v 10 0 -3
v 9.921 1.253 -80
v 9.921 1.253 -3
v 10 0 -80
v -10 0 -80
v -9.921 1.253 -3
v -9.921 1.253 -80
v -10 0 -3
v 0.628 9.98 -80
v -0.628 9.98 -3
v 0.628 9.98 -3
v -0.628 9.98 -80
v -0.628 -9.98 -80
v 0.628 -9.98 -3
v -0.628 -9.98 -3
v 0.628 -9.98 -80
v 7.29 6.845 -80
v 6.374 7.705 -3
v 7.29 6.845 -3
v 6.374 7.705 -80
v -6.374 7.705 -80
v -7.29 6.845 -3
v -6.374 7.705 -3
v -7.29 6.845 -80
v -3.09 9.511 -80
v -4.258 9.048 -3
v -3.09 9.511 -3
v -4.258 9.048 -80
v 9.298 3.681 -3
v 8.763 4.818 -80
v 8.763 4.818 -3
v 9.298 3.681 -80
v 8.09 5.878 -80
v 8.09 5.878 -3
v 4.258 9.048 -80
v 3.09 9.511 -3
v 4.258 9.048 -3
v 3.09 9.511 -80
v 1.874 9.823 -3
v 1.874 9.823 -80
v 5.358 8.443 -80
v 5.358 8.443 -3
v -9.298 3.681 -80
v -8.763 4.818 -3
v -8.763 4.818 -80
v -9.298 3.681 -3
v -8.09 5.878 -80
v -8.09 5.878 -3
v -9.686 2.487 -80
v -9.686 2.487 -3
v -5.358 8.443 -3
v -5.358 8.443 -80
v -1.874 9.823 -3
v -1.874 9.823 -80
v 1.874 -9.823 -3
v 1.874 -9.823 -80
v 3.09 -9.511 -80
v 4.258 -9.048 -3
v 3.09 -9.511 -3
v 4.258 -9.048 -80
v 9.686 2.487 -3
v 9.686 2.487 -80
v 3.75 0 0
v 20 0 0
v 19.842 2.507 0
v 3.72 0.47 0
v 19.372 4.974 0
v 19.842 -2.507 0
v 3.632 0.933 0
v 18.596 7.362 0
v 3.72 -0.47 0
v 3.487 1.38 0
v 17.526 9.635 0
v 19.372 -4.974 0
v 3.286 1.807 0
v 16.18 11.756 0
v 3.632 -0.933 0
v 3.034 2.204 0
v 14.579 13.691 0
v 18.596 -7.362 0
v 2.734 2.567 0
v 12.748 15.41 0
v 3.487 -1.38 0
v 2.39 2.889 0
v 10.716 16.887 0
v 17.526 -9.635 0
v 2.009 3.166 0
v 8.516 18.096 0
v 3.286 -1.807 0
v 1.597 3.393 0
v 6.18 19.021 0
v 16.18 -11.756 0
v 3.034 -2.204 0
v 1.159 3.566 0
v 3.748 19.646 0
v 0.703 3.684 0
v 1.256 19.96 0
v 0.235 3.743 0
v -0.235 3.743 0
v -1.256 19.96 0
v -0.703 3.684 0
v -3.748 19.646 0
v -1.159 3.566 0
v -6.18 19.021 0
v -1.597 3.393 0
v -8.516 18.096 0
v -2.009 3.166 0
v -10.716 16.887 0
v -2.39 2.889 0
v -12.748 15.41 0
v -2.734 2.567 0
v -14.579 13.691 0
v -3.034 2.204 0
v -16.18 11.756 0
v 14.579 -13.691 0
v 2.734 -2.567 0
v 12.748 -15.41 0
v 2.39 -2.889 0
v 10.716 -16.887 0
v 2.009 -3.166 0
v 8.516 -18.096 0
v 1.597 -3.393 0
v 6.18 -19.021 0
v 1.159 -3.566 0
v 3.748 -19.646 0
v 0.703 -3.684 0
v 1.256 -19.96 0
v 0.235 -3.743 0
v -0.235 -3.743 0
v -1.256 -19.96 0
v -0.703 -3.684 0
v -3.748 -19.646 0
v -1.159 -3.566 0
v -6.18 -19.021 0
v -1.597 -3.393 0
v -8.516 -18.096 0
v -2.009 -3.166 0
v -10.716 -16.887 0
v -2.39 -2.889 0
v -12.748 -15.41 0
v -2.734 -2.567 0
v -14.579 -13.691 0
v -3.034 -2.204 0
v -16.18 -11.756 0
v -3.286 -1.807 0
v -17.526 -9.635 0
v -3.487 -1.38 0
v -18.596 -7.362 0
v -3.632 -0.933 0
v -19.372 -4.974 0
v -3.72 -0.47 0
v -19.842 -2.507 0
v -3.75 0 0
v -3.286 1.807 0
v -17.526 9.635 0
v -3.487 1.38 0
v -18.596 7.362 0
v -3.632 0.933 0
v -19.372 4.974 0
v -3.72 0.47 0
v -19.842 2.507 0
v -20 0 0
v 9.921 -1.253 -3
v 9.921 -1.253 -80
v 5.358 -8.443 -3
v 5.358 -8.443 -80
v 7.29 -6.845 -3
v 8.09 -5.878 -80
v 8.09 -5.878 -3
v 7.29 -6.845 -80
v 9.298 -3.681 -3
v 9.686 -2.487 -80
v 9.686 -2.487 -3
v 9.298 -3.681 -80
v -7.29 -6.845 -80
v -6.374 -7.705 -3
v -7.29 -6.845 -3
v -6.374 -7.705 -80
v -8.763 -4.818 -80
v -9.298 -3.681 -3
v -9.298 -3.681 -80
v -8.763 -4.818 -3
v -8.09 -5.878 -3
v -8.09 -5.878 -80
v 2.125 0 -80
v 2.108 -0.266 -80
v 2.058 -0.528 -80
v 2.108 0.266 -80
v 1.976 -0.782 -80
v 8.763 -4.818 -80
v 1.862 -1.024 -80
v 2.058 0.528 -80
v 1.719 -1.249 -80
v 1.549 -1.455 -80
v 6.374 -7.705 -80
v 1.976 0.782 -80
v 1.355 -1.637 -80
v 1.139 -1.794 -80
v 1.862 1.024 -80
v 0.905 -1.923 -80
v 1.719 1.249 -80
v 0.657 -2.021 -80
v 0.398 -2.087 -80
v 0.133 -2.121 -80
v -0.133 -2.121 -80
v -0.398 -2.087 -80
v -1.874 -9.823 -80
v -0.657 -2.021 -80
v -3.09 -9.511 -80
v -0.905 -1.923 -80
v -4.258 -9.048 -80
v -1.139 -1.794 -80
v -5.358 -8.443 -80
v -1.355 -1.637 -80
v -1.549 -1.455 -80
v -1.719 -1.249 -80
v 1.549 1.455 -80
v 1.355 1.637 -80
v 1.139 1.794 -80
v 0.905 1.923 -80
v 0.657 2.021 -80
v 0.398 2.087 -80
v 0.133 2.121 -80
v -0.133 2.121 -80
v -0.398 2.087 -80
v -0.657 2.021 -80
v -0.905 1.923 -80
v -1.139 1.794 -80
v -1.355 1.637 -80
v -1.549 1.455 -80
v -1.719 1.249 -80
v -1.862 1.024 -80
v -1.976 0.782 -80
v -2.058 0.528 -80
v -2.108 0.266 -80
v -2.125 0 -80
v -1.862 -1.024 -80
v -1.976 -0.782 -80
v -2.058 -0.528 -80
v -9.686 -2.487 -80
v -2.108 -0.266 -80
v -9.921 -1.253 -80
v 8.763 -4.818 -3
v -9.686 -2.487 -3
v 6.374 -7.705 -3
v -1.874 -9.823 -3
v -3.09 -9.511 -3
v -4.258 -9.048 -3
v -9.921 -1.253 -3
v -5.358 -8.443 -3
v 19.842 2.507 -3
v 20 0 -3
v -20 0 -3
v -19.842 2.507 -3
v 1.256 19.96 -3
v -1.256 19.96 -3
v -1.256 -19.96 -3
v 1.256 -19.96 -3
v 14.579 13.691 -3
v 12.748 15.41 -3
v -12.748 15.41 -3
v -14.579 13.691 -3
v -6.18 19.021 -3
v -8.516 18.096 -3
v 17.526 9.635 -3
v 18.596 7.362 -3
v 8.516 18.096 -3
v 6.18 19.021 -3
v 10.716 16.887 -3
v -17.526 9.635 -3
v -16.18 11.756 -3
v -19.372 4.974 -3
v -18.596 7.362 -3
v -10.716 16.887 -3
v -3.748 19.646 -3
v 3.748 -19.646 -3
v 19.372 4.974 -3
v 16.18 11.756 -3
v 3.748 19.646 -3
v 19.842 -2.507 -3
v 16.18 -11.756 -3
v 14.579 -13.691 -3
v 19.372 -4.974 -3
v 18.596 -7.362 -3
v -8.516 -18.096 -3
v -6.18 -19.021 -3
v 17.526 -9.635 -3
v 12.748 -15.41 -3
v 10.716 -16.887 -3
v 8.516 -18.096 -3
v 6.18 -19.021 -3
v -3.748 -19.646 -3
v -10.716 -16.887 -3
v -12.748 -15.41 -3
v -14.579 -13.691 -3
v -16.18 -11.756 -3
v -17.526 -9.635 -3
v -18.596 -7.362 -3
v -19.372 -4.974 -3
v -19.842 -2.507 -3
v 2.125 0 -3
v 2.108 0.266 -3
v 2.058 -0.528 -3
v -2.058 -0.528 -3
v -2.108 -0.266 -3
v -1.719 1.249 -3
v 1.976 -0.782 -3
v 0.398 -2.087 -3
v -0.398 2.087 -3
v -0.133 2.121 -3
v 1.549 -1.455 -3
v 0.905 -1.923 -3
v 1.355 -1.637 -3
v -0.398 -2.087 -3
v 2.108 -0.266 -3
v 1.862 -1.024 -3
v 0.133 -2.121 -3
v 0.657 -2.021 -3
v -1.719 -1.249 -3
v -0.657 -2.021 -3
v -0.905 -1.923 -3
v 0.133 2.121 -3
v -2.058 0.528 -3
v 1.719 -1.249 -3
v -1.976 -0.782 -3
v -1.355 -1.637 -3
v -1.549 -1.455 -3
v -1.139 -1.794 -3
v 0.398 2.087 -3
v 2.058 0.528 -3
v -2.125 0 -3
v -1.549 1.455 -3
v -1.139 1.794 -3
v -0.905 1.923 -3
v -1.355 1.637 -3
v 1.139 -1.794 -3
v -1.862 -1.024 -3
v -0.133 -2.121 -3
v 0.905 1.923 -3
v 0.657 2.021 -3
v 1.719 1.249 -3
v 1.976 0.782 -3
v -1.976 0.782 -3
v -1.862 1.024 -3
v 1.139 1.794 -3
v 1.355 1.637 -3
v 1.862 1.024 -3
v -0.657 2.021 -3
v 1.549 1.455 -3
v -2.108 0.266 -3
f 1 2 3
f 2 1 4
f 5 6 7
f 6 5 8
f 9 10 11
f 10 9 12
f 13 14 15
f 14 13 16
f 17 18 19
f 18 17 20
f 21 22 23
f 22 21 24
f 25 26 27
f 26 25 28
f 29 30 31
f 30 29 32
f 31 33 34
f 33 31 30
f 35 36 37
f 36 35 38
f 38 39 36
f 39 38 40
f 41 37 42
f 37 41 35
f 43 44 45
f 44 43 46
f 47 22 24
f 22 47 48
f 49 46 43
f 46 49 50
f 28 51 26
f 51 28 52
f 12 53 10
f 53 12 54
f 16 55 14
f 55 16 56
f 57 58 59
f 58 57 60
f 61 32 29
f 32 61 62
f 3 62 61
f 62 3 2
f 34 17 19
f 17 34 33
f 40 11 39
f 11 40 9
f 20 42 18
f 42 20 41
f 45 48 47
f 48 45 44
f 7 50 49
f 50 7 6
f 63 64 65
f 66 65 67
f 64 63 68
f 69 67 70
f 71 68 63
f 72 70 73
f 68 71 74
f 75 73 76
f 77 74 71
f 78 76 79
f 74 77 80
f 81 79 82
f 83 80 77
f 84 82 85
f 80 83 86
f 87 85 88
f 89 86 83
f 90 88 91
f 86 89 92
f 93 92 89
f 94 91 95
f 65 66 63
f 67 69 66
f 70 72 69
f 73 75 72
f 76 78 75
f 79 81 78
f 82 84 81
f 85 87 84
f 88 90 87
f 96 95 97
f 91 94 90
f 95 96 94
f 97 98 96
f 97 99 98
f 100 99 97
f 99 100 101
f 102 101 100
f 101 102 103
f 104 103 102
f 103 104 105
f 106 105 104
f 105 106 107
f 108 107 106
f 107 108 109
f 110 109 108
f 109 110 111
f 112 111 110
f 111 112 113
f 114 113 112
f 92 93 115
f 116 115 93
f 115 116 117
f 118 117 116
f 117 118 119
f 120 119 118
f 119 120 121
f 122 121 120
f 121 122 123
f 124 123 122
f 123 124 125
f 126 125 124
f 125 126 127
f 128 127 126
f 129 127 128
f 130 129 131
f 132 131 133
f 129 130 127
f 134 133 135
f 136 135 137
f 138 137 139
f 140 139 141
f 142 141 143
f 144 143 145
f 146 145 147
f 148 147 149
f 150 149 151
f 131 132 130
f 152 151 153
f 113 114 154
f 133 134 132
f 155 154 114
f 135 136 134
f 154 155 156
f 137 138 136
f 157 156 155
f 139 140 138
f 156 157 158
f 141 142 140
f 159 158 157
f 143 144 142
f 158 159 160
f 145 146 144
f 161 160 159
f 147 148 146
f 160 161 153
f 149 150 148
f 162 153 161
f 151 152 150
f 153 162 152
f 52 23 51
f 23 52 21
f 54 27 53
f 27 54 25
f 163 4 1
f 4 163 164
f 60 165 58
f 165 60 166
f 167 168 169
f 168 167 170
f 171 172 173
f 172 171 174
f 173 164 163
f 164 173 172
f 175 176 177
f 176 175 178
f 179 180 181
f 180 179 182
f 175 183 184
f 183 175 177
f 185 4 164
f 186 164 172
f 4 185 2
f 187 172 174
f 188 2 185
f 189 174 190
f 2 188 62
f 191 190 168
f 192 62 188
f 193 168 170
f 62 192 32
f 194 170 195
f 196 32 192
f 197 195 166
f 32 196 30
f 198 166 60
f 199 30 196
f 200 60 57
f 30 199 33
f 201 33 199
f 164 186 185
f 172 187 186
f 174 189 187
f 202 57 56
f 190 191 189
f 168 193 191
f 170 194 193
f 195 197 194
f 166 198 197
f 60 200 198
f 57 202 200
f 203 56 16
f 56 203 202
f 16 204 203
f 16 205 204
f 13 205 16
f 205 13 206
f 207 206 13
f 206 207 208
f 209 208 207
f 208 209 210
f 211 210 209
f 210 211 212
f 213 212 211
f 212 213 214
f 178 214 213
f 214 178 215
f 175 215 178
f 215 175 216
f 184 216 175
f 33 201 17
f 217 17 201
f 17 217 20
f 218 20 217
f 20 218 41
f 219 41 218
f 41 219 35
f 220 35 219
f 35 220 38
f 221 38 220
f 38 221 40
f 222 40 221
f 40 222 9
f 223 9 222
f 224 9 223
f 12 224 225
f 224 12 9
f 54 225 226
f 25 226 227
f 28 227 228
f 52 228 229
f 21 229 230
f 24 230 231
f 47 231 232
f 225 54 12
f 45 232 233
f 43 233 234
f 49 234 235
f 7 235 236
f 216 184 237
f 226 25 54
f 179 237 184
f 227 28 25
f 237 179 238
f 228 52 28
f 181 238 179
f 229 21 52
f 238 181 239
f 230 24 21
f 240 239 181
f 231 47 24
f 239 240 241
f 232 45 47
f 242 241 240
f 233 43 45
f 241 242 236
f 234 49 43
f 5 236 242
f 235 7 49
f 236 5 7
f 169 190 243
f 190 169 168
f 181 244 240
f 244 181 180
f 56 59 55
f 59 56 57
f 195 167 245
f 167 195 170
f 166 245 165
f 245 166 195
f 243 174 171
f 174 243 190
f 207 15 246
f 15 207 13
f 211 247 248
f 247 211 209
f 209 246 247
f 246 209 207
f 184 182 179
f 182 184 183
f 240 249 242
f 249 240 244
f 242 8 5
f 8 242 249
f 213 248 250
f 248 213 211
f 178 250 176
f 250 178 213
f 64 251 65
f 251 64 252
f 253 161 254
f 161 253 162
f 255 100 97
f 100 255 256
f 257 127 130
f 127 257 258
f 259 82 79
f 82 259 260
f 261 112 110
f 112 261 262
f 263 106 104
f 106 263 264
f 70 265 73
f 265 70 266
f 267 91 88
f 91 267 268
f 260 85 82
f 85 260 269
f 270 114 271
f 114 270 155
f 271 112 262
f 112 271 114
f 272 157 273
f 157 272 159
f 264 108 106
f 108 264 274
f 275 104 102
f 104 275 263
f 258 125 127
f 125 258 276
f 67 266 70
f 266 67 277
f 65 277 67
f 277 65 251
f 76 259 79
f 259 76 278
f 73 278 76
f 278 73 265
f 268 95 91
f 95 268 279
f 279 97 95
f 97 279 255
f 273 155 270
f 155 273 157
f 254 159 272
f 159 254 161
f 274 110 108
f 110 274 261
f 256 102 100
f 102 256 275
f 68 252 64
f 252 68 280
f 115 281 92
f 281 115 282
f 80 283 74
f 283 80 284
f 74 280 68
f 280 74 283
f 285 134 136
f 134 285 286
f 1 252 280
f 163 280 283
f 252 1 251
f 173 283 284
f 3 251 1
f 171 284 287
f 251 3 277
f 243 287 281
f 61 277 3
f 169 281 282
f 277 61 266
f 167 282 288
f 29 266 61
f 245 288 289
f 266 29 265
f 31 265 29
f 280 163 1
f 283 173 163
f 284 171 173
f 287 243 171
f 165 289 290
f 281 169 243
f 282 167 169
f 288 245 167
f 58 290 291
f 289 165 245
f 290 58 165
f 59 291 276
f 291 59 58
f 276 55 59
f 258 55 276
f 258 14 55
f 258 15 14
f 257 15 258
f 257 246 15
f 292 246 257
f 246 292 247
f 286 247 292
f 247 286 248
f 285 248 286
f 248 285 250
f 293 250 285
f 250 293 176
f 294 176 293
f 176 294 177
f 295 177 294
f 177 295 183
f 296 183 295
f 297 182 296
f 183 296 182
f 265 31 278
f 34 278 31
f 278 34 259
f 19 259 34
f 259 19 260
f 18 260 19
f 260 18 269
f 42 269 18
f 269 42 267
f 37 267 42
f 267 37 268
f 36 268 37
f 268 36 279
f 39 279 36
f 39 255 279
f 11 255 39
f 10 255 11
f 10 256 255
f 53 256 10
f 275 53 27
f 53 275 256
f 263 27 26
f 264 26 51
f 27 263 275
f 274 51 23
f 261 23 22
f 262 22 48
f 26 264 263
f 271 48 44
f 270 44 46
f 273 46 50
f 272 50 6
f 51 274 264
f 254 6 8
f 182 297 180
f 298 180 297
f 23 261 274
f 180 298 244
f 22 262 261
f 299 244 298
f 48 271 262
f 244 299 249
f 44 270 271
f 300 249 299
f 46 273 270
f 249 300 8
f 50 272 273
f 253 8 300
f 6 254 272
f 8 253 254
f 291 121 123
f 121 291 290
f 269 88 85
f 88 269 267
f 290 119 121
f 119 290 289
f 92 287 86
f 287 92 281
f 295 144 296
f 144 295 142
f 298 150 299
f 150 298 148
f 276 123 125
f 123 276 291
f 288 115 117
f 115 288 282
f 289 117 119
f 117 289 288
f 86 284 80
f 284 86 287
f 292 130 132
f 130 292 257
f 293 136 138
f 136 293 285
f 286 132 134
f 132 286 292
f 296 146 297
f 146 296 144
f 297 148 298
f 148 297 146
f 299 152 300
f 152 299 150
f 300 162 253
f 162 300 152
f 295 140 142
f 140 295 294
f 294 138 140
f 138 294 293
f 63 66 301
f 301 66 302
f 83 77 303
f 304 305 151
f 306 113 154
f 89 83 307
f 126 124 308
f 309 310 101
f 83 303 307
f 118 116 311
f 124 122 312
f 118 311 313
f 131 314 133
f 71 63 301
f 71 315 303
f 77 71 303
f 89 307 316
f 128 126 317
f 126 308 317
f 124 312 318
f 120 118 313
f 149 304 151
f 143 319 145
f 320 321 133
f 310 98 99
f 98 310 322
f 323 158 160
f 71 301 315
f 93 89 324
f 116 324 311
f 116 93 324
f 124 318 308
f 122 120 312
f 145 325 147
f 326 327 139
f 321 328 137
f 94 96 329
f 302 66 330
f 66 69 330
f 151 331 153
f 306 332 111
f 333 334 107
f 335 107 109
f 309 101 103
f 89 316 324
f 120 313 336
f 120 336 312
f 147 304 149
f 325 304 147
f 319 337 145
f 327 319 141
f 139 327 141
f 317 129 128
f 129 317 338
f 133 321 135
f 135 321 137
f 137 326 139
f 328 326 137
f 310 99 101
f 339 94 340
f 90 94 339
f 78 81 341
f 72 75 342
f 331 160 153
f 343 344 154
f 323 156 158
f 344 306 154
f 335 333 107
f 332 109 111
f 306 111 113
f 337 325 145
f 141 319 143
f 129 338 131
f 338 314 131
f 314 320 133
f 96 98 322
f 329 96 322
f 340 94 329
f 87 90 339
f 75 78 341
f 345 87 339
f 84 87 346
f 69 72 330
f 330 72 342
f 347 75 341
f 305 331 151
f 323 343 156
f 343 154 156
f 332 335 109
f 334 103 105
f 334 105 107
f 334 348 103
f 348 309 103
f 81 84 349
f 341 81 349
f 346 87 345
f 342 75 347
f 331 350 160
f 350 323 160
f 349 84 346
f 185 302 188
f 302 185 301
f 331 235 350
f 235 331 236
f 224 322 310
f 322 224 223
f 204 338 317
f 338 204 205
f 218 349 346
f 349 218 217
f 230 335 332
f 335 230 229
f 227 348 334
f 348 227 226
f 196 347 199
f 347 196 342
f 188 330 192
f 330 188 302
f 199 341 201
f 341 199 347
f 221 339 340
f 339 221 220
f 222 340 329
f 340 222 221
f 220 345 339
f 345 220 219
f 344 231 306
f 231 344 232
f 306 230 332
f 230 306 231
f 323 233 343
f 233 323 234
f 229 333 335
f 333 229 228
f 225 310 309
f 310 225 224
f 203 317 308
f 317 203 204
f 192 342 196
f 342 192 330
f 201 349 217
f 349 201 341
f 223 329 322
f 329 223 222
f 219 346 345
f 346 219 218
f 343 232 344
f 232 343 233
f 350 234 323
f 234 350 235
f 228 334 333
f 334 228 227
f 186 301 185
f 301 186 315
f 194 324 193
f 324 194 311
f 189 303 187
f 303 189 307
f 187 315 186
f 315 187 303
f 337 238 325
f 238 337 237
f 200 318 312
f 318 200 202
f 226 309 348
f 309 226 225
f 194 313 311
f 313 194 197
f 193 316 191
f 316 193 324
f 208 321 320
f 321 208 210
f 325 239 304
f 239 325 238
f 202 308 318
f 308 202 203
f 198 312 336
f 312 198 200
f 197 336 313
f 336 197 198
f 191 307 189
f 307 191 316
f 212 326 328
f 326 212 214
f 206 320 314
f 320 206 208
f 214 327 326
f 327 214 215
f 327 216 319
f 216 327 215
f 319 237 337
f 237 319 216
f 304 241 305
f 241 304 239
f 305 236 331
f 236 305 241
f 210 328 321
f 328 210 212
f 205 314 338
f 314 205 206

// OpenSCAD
$fn = 50;


difference() {
	union() {
		translate(v = [0, 0, -80.0000000000]) {
			cylinder(h = 80, r = 10.0000000000);
		}
		translate(v = [0, 0, -3.0000000000]) {
			cylinder(h = 3, r = 20.0000000000);
		}
	}
	union() {
		translate(v = [0, 0, 0]) {
			rotate(a = [0, 0, 0]) {
				difference() {
					union() {
						#translate(v = [0, 0, -80.0000000000]) {
							cylinder(h = 80, r = 2.0000000000);
						}
						#translate(v = [0, 0, -3]) {
							cylinder(h = 3, r1 = 2.1250000000, r2 = 3.7500000000);
						}
						#translate(v = [0, 0, -80.0000000000]) {
							cylinder(h = 80, r = 2.1250000000);
						}
						#translate(v = [0, 0, -80.0000000000]) {
							cylinder(h = 80, r = 2.0000000000);
						}
					}
					union();
				}
			}
		}
	}
}
